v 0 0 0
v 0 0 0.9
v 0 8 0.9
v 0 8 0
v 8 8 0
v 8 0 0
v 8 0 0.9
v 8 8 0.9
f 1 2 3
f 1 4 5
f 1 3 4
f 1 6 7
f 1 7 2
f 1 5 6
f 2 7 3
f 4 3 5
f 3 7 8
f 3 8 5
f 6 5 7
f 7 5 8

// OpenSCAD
/* Warning, this is a very basic generator with a lot of approximation 
input data : [VQFN, KHX, 8x8x0.9mm, 56, , A, C04-00448A]
generated by com.zoubworld.electronics.cad.model3d.Basic
Date : Sun Feb 15 10:50:48 CET 2026
*/

//body
color("black")
translate([0,0,0])
cube([8.0,8.0,0.9], center=false);
